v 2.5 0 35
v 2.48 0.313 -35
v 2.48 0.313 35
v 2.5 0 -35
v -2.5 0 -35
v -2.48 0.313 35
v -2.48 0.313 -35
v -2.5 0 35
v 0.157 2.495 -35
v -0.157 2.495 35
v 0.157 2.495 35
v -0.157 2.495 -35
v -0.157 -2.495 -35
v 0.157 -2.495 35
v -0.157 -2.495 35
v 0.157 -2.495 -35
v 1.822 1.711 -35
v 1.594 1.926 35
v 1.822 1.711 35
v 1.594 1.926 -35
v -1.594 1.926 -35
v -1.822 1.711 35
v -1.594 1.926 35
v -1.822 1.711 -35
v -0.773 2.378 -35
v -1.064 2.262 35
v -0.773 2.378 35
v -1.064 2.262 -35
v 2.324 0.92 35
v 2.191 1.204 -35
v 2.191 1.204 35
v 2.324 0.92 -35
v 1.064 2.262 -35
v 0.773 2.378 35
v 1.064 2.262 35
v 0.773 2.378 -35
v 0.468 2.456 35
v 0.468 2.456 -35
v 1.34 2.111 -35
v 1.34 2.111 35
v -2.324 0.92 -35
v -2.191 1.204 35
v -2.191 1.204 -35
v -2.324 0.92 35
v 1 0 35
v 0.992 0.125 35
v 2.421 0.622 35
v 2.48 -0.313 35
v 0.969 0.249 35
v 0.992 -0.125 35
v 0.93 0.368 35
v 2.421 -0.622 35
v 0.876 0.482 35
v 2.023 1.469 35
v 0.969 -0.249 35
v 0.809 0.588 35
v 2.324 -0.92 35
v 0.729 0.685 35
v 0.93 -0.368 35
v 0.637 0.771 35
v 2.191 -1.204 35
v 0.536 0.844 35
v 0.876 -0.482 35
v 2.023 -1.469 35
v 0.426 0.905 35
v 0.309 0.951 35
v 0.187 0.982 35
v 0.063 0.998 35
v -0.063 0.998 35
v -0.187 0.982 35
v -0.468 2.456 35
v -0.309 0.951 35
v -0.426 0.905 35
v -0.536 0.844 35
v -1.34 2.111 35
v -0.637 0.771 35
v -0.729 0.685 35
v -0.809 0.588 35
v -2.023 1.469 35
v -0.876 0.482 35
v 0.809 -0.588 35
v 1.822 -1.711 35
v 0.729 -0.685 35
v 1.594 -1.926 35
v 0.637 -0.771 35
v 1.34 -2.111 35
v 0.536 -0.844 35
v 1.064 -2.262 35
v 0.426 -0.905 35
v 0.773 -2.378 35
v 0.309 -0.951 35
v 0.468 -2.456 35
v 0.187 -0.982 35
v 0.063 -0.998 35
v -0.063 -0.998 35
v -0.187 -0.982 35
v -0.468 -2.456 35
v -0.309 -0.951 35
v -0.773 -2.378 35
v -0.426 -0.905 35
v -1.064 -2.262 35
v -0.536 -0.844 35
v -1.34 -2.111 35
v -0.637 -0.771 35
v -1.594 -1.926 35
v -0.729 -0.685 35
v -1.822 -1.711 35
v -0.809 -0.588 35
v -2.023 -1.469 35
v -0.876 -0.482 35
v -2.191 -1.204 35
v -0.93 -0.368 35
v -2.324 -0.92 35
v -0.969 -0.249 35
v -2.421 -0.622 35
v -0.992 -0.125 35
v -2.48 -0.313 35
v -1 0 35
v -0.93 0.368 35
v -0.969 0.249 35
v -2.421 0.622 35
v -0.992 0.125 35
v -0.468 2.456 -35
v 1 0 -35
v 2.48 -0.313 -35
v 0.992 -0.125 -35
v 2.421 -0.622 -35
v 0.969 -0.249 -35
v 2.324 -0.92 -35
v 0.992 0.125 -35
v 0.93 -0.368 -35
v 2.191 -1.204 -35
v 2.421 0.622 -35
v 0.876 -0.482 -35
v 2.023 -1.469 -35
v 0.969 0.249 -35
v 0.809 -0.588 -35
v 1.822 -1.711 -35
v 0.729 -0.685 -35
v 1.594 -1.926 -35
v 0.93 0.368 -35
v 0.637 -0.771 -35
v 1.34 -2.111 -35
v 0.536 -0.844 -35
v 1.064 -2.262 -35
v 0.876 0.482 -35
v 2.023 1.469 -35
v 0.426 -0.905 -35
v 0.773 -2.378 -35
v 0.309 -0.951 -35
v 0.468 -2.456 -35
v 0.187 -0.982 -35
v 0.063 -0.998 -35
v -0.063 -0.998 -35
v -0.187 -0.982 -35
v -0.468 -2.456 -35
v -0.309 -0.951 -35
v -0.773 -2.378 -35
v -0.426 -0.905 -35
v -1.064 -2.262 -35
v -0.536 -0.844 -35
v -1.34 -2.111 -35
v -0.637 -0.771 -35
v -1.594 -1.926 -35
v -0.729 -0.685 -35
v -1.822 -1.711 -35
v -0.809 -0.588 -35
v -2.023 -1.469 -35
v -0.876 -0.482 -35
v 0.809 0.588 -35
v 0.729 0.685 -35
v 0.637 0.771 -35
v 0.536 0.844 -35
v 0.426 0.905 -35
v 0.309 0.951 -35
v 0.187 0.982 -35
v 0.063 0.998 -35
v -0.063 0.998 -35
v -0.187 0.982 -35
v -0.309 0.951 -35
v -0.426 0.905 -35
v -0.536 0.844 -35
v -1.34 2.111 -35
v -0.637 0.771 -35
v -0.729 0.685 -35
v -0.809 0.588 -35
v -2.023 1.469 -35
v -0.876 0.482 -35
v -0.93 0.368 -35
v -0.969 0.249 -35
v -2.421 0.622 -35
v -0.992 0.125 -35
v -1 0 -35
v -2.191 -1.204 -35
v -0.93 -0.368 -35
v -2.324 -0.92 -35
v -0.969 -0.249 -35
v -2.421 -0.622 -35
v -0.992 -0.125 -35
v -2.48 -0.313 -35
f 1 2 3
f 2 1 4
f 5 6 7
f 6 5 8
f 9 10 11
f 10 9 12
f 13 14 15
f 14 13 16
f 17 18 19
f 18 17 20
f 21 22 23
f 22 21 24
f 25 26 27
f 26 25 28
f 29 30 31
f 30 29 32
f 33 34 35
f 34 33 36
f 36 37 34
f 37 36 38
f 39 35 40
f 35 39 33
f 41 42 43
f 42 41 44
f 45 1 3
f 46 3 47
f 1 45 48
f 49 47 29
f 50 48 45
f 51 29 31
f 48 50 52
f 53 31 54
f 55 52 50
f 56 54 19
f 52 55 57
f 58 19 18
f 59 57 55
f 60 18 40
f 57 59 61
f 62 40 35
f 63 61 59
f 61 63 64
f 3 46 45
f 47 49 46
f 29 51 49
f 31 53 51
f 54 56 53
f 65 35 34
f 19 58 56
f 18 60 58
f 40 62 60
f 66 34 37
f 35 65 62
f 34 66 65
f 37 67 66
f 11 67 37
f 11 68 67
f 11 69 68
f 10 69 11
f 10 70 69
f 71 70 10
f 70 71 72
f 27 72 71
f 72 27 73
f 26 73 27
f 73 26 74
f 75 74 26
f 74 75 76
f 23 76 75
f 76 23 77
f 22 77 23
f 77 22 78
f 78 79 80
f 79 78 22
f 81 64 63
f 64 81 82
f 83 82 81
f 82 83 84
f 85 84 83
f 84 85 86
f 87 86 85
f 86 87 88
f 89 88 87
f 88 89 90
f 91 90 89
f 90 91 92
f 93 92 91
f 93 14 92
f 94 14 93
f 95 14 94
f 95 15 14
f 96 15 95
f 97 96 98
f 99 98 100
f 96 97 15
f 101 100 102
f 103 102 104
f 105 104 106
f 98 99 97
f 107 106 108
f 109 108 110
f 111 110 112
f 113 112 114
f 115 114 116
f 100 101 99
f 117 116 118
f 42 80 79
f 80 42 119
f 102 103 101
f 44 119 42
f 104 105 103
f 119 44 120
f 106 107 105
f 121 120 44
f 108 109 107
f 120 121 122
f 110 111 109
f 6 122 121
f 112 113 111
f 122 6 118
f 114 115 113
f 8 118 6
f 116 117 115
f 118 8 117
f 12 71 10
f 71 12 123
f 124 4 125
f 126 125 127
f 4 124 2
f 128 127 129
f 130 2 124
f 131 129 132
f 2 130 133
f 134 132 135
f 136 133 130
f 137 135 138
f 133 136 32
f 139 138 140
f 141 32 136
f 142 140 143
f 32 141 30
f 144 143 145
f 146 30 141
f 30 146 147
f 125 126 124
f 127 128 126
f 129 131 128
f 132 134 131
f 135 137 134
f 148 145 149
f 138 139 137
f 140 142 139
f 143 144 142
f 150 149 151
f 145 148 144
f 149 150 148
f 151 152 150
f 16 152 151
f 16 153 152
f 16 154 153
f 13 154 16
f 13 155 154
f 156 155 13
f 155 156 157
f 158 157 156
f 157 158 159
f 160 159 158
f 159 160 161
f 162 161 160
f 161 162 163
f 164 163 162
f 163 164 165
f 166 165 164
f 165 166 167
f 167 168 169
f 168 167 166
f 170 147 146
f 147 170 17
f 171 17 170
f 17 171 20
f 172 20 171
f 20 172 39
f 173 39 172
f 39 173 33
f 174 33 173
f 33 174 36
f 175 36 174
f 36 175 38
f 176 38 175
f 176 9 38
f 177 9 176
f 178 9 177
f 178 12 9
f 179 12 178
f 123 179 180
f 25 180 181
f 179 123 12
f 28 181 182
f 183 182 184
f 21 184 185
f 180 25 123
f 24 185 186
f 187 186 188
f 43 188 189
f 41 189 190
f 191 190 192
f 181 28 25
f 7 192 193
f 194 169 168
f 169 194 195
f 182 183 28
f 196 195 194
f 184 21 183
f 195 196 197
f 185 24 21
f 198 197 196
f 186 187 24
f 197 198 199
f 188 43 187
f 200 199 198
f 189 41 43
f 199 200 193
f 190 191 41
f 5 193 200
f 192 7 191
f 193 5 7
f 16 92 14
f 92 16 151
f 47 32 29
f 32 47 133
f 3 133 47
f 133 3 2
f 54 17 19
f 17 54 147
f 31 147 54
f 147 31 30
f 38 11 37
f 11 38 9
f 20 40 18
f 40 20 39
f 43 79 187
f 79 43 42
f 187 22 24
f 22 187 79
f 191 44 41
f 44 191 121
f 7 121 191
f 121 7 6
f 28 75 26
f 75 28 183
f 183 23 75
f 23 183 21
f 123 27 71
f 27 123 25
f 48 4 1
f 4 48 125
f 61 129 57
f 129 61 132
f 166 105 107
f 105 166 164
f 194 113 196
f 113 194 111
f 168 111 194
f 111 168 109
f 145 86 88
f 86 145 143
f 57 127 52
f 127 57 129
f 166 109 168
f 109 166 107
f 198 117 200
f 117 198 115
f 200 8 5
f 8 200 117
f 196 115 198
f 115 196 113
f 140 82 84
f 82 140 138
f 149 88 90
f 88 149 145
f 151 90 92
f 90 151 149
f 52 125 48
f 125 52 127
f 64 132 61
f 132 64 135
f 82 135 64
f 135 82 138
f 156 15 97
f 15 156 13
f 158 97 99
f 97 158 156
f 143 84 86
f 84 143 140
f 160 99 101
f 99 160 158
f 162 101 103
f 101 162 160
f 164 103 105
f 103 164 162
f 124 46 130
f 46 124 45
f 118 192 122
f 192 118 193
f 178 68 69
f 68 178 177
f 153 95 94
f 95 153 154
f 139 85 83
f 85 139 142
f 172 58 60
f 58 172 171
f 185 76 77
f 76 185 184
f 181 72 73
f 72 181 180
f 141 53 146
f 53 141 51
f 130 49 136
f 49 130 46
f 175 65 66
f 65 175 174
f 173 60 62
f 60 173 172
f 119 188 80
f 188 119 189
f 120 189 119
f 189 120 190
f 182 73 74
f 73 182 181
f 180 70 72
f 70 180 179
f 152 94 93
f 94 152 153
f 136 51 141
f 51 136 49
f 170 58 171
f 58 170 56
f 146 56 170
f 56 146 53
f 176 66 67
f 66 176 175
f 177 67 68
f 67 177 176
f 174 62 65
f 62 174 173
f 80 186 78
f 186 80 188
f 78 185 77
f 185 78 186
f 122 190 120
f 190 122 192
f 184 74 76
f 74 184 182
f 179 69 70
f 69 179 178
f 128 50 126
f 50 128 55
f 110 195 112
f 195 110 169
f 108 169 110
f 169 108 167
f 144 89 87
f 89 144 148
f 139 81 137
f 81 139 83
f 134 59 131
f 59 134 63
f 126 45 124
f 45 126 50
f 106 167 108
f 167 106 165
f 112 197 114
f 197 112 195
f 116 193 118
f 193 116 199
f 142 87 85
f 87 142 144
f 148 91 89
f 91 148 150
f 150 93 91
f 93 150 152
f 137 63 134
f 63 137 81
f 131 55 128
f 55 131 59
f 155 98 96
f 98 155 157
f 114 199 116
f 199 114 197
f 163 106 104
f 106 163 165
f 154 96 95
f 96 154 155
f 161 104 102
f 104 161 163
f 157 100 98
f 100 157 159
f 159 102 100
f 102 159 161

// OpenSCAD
$fn = 50;


difference() {
	union() {
		translate(v = [0, 0, -35.0000000000]) {
			cylinder(h = 70, r = 2.5000000000);
		}
	}
	union() {
		translate(v = [0, 0, -100.0000000000]) {
			cylinder(h = 200, r = 1.0000000000);
		}
	}
}
